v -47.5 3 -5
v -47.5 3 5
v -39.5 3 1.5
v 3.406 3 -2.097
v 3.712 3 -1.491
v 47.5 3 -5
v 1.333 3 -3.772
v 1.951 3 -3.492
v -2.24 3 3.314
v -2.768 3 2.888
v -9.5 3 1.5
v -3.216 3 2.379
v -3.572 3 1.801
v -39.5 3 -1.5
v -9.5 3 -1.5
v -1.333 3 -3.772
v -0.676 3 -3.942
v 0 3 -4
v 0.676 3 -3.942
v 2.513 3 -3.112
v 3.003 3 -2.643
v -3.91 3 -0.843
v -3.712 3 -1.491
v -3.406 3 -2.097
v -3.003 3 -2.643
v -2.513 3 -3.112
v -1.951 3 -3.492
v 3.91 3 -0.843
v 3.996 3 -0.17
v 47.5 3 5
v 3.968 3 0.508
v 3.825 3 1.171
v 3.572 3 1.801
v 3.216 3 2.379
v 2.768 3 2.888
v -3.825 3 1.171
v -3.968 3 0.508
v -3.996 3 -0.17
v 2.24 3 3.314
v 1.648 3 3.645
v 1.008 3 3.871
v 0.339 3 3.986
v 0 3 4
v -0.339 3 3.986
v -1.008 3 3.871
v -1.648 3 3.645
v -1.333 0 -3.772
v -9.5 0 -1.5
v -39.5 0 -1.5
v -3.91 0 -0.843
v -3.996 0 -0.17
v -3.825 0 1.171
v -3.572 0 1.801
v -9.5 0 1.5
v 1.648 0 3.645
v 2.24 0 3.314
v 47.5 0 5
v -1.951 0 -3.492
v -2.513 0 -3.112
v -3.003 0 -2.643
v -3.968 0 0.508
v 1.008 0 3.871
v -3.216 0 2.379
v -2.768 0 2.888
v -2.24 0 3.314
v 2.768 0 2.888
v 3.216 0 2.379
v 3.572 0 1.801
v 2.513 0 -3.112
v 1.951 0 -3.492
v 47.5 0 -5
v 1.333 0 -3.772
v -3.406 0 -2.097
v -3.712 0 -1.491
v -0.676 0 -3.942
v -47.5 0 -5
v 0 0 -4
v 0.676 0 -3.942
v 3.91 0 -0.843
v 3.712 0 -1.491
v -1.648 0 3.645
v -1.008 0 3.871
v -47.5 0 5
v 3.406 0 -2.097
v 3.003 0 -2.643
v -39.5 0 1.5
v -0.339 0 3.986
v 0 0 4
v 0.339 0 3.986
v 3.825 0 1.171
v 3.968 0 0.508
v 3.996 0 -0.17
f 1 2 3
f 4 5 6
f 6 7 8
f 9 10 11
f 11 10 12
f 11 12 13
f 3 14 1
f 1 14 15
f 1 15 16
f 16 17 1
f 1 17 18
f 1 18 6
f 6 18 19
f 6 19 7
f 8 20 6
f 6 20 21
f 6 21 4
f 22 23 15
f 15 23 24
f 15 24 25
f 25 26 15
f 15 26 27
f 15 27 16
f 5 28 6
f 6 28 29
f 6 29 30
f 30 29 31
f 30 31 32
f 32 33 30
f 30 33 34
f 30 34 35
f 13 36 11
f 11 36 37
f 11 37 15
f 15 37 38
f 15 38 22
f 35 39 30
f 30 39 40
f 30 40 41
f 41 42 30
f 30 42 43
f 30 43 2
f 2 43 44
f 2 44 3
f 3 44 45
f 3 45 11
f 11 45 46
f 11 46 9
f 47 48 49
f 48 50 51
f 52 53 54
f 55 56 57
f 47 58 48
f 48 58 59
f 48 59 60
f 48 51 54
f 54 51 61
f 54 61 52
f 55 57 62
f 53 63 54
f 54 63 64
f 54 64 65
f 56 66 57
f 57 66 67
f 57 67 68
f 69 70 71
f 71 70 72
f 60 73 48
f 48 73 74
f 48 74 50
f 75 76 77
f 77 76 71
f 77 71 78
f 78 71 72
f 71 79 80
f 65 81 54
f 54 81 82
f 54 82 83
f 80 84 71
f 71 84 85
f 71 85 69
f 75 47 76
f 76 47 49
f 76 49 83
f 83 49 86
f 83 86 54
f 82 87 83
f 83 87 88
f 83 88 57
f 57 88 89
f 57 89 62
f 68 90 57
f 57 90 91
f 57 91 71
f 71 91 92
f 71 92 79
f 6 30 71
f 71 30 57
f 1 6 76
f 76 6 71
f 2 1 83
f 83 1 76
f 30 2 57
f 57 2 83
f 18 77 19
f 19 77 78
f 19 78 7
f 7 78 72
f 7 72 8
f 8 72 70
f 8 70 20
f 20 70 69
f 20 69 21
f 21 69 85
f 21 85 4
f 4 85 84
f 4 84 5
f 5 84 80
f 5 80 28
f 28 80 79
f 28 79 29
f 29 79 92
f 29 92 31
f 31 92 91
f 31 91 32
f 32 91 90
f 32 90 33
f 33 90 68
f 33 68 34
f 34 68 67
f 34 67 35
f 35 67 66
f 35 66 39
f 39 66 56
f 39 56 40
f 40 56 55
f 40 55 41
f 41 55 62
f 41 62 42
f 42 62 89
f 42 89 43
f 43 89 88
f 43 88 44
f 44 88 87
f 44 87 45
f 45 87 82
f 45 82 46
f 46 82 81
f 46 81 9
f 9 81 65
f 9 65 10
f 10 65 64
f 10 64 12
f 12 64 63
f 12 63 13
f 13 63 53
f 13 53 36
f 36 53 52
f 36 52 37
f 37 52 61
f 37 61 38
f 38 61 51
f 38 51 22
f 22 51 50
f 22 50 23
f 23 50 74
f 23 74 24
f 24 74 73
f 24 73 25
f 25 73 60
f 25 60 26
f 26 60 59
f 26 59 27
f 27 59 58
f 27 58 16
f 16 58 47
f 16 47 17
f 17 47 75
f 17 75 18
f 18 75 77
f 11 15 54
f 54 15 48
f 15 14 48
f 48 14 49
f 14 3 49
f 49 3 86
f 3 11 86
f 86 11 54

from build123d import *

# Parameters (mm, degrees)
CROQUIS1_W              = 95
CROQUIS1_H              = 10
CROQUIS1_R              = 4
CROQUIS1_W_2            = 30
CROQUIS1_H_2            = 3
SALIENTE_EXTRUIR1_DEPTH = 3


with BuildPart() as part:
    # Croquis1 → Saliente-Extruir1 (new body)
    with BuildSketch(Plane(origin=(0, 0, 0), x_dir=(1, 0, 0), z_dir=(0, 1, 0))):
        Rectangle(CROQUIS1_W, CROQUIS1_H)
        Circle(CROQUIS1_R, mode=Mode.SUBTRACT)
        with Locations((-24.5, 0)):
            Rectangle(CROQUIS1_W_2, CROQUIS1_H_2, mode=Mode.SUBTRACT)
    extrude(amount=SALIENTE_EXTRUIR1_DEPTH)


solid = part.part
